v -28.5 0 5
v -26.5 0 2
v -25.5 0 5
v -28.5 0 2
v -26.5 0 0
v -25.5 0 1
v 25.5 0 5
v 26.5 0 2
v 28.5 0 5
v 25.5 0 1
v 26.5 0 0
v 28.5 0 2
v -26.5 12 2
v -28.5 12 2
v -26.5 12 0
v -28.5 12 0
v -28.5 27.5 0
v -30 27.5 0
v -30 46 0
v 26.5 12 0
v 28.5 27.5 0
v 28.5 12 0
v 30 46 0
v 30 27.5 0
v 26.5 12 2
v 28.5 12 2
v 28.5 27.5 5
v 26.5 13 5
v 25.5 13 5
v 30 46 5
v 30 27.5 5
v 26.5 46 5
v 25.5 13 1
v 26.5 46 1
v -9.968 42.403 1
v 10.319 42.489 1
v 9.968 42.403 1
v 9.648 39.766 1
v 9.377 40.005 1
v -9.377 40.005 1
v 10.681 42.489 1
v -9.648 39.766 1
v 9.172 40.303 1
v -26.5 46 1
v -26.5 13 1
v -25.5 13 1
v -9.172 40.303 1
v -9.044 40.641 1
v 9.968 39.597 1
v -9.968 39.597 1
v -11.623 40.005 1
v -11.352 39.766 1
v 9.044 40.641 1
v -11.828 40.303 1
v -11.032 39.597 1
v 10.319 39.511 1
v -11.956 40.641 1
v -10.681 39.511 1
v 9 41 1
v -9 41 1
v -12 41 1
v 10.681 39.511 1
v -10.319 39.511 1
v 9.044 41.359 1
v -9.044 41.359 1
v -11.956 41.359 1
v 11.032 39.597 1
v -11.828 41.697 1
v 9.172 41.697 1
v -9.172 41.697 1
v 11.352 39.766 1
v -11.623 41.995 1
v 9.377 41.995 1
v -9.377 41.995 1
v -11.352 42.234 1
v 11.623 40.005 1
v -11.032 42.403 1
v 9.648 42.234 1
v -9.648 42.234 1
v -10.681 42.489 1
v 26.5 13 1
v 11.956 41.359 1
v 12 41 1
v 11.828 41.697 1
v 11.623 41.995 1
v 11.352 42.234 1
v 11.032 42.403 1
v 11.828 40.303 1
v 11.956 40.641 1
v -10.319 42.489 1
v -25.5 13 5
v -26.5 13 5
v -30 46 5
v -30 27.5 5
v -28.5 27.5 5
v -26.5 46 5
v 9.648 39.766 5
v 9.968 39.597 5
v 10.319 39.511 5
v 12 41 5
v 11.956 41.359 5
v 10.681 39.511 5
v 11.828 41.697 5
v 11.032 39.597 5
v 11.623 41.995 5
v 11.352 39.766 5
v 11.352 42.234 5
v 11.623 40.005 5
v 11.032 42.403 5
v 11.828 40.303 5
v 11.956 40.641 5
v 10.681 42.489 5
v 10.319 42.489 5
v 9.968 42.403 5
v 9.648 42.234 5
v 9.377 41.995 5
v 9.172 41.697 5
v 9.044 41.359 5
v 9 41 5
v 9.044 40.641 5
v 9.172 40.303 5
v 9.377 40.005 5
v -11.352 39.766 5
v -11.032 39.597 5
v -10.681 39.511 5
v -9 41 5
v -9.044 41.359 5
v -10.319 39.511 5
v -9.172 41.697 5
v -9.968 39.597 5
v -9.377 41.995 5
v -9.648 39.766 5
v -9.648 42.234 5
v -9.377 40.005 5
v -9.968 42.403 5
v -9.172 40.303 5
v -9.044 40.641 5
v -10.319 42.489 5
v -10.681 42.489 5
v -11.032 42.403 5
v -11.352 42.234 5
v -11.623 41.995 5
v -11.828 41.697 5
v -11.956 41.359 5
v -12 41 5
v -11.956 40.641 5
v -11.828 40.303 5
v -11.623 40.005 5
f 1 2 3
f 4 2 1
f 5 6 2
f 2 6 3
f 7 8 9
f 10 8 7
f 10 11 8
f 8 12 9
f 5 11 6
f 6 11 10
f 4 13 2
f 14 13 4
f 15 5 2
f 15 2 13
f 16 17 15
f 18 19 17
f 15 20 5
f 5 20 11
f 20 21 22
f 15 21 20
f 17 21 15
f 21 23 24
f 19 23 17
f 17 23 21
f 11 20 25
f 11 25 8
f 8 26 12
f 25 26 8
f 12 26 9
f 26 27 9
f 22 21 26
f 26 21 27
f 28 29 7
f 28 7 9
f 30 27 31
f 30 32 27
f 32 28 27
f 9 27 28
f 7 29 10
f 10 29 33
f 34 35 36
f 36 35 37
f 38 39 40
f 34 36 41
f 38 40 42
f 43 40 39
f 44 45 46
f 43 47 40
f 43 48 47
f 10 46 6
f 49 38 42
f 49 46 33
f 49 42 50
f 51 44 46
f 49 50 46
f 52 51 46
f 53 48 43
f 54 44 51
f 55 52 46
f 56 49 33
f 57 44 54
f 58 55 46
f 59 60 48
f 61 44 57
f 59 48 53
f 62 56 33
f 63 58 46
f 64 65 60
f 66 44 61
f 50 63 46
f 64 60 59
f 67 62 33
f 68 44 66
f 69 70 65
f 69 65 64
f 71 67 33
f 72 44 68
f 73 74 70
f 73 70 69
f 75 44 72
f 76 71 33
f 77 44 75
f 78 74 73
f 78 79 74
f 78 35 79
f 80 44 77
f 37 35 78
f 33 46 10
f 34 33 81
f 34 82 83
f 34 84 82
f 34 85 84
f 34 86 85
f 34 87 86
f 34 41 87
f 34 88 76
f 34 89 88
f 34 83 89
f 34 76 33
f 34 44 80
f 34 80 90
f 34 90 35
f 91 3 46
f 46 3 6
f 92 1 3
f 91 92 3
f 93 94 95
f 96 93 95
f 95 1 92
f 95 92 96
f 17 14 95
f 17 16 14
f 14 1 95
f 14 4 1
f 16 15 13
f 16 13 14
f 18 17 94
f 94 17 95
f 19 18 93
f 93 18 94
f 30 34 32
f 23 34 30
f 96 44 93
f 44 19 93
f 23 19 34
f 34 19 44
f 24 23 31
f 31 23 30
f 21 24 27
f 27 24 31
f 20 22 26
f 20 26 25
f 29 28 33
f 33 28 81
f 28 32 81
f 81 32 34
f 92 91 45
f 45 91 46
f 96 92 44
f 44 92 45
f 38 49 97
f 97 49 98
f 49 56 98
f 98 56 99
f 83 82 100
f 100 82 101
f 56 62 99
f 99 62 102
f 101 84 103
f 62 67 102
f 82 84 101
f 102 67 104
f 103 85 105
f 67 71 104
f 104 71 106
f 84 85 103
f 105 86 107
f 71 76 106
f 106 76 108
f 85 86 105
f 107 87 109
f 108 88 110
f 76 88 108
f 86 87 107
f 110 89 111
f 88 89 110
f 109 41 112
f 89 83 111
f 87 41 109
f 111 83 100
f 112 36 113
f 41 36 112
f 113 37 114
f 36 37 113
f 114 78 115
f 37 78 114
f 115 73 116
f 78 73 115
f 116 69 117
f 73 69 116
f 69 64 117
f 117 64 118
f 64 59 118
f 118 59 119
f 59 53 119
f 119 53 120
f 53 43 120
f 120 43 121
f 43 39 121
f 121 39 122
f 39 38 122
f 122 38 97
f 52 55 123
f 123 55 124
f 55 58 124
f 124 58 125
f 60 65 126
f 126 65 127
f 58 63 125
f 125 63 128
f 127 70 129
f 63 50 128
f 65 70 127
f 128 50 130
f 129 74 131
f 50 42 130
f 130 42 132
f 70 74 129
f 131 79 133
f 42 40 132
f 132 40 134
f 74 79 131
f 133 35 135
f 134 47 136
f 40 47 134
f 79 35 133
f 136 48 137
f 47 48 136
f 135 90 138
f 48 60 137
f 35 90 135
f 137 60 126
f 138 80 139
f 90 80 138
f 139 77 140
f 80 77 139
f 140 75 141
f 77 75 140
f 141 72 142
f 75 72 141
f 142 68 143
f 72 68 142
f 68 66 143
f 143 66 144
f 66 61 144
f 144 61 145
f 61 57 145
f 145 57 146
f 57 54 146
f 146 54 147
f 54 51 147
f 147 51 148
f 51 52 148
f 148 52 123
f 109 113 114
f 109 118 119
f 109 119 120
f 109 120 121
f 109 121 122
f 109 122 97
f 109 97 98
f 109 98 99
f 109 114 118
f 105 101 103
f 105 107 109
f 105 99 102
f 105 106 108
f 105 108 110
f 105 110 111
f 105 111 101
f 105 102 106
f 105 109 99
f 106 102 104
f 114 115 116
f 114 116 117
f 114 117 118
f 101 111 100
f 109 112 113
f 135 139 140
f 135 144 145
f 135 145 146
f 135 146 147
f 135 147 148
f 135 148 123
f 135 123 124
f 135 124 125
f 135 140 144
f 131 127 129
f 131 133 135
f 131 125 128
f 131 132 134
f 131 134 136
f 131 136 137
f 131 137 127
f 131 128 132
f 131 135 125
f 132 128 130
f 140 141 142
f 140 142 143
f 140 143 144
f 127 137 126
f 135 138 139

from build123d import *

# Parameters (mm, degrees)
PAD_DEPTH       = 5
SKETCH001_W     = 2
SKETCH001_H     = 12
POCKET_DEPTH    = 2
POCKET001_DEPTH = 4
SKETCH003_R     = 1.5
PAD001_DEPTH    = 4


with BuildPart() as part:
    # Sketch → Pad (new body)
    with BuildSketch(Plane.XY):
        Polygon((-28.5, 0), (28.5, 0), (28.5, 27.5), (30, 27.5), (30, 46), (-30, 46), (-30, 27.5), (-28.5, 27.5), align=None)
    extrude(amount=PAD_DEPTH)

    # Sketch001 (on Face9 of Pad) → Pocket (cut)
    with BuildSketch(Plane(origin=(0, 0, 0), x_dir=(1, 0, 0), z_dir=(0, 0, -1))):
        with Locations((-27.5, -6)):
            Rectangle(SKETCH001_W, SKETCH001_H)
        with Locations((27.5, -6)):
            Rectangle(SKETCH001_W, SKETCH001_H)
    extrude(amount=-POCKET_DEPTH, mode=Mode.SUBTRACT)

    # Sketch002 (on Face8 of Pocket) → Pocket001 (cut)
    with BuildSketch(Plane.XY.offset(5)):
        Polygon((-25.5, 0), (25.5, 0), (25.5, 13), (26.5, 13), (26.5, 46), (-26.5, 46), (-26.5, 13), (-25.5, 13), align=None)
    extrude(amount=-POCKET001_DEPTH, mode=Mode.SUBTRACT)

    # Sketch003 (on Face10 of Pocket001) → Pad001 (join)
    with BuildSketch(Plane.XY.offset(1)):
        with Locations((-10.5, 41)):
            Circle(SKETCH003_R)
        with Locations((10.5, 41)):
            Circle(SKETCH003_R)
    extrude(amount=PAD001_DEPTH)


solid = part.part
